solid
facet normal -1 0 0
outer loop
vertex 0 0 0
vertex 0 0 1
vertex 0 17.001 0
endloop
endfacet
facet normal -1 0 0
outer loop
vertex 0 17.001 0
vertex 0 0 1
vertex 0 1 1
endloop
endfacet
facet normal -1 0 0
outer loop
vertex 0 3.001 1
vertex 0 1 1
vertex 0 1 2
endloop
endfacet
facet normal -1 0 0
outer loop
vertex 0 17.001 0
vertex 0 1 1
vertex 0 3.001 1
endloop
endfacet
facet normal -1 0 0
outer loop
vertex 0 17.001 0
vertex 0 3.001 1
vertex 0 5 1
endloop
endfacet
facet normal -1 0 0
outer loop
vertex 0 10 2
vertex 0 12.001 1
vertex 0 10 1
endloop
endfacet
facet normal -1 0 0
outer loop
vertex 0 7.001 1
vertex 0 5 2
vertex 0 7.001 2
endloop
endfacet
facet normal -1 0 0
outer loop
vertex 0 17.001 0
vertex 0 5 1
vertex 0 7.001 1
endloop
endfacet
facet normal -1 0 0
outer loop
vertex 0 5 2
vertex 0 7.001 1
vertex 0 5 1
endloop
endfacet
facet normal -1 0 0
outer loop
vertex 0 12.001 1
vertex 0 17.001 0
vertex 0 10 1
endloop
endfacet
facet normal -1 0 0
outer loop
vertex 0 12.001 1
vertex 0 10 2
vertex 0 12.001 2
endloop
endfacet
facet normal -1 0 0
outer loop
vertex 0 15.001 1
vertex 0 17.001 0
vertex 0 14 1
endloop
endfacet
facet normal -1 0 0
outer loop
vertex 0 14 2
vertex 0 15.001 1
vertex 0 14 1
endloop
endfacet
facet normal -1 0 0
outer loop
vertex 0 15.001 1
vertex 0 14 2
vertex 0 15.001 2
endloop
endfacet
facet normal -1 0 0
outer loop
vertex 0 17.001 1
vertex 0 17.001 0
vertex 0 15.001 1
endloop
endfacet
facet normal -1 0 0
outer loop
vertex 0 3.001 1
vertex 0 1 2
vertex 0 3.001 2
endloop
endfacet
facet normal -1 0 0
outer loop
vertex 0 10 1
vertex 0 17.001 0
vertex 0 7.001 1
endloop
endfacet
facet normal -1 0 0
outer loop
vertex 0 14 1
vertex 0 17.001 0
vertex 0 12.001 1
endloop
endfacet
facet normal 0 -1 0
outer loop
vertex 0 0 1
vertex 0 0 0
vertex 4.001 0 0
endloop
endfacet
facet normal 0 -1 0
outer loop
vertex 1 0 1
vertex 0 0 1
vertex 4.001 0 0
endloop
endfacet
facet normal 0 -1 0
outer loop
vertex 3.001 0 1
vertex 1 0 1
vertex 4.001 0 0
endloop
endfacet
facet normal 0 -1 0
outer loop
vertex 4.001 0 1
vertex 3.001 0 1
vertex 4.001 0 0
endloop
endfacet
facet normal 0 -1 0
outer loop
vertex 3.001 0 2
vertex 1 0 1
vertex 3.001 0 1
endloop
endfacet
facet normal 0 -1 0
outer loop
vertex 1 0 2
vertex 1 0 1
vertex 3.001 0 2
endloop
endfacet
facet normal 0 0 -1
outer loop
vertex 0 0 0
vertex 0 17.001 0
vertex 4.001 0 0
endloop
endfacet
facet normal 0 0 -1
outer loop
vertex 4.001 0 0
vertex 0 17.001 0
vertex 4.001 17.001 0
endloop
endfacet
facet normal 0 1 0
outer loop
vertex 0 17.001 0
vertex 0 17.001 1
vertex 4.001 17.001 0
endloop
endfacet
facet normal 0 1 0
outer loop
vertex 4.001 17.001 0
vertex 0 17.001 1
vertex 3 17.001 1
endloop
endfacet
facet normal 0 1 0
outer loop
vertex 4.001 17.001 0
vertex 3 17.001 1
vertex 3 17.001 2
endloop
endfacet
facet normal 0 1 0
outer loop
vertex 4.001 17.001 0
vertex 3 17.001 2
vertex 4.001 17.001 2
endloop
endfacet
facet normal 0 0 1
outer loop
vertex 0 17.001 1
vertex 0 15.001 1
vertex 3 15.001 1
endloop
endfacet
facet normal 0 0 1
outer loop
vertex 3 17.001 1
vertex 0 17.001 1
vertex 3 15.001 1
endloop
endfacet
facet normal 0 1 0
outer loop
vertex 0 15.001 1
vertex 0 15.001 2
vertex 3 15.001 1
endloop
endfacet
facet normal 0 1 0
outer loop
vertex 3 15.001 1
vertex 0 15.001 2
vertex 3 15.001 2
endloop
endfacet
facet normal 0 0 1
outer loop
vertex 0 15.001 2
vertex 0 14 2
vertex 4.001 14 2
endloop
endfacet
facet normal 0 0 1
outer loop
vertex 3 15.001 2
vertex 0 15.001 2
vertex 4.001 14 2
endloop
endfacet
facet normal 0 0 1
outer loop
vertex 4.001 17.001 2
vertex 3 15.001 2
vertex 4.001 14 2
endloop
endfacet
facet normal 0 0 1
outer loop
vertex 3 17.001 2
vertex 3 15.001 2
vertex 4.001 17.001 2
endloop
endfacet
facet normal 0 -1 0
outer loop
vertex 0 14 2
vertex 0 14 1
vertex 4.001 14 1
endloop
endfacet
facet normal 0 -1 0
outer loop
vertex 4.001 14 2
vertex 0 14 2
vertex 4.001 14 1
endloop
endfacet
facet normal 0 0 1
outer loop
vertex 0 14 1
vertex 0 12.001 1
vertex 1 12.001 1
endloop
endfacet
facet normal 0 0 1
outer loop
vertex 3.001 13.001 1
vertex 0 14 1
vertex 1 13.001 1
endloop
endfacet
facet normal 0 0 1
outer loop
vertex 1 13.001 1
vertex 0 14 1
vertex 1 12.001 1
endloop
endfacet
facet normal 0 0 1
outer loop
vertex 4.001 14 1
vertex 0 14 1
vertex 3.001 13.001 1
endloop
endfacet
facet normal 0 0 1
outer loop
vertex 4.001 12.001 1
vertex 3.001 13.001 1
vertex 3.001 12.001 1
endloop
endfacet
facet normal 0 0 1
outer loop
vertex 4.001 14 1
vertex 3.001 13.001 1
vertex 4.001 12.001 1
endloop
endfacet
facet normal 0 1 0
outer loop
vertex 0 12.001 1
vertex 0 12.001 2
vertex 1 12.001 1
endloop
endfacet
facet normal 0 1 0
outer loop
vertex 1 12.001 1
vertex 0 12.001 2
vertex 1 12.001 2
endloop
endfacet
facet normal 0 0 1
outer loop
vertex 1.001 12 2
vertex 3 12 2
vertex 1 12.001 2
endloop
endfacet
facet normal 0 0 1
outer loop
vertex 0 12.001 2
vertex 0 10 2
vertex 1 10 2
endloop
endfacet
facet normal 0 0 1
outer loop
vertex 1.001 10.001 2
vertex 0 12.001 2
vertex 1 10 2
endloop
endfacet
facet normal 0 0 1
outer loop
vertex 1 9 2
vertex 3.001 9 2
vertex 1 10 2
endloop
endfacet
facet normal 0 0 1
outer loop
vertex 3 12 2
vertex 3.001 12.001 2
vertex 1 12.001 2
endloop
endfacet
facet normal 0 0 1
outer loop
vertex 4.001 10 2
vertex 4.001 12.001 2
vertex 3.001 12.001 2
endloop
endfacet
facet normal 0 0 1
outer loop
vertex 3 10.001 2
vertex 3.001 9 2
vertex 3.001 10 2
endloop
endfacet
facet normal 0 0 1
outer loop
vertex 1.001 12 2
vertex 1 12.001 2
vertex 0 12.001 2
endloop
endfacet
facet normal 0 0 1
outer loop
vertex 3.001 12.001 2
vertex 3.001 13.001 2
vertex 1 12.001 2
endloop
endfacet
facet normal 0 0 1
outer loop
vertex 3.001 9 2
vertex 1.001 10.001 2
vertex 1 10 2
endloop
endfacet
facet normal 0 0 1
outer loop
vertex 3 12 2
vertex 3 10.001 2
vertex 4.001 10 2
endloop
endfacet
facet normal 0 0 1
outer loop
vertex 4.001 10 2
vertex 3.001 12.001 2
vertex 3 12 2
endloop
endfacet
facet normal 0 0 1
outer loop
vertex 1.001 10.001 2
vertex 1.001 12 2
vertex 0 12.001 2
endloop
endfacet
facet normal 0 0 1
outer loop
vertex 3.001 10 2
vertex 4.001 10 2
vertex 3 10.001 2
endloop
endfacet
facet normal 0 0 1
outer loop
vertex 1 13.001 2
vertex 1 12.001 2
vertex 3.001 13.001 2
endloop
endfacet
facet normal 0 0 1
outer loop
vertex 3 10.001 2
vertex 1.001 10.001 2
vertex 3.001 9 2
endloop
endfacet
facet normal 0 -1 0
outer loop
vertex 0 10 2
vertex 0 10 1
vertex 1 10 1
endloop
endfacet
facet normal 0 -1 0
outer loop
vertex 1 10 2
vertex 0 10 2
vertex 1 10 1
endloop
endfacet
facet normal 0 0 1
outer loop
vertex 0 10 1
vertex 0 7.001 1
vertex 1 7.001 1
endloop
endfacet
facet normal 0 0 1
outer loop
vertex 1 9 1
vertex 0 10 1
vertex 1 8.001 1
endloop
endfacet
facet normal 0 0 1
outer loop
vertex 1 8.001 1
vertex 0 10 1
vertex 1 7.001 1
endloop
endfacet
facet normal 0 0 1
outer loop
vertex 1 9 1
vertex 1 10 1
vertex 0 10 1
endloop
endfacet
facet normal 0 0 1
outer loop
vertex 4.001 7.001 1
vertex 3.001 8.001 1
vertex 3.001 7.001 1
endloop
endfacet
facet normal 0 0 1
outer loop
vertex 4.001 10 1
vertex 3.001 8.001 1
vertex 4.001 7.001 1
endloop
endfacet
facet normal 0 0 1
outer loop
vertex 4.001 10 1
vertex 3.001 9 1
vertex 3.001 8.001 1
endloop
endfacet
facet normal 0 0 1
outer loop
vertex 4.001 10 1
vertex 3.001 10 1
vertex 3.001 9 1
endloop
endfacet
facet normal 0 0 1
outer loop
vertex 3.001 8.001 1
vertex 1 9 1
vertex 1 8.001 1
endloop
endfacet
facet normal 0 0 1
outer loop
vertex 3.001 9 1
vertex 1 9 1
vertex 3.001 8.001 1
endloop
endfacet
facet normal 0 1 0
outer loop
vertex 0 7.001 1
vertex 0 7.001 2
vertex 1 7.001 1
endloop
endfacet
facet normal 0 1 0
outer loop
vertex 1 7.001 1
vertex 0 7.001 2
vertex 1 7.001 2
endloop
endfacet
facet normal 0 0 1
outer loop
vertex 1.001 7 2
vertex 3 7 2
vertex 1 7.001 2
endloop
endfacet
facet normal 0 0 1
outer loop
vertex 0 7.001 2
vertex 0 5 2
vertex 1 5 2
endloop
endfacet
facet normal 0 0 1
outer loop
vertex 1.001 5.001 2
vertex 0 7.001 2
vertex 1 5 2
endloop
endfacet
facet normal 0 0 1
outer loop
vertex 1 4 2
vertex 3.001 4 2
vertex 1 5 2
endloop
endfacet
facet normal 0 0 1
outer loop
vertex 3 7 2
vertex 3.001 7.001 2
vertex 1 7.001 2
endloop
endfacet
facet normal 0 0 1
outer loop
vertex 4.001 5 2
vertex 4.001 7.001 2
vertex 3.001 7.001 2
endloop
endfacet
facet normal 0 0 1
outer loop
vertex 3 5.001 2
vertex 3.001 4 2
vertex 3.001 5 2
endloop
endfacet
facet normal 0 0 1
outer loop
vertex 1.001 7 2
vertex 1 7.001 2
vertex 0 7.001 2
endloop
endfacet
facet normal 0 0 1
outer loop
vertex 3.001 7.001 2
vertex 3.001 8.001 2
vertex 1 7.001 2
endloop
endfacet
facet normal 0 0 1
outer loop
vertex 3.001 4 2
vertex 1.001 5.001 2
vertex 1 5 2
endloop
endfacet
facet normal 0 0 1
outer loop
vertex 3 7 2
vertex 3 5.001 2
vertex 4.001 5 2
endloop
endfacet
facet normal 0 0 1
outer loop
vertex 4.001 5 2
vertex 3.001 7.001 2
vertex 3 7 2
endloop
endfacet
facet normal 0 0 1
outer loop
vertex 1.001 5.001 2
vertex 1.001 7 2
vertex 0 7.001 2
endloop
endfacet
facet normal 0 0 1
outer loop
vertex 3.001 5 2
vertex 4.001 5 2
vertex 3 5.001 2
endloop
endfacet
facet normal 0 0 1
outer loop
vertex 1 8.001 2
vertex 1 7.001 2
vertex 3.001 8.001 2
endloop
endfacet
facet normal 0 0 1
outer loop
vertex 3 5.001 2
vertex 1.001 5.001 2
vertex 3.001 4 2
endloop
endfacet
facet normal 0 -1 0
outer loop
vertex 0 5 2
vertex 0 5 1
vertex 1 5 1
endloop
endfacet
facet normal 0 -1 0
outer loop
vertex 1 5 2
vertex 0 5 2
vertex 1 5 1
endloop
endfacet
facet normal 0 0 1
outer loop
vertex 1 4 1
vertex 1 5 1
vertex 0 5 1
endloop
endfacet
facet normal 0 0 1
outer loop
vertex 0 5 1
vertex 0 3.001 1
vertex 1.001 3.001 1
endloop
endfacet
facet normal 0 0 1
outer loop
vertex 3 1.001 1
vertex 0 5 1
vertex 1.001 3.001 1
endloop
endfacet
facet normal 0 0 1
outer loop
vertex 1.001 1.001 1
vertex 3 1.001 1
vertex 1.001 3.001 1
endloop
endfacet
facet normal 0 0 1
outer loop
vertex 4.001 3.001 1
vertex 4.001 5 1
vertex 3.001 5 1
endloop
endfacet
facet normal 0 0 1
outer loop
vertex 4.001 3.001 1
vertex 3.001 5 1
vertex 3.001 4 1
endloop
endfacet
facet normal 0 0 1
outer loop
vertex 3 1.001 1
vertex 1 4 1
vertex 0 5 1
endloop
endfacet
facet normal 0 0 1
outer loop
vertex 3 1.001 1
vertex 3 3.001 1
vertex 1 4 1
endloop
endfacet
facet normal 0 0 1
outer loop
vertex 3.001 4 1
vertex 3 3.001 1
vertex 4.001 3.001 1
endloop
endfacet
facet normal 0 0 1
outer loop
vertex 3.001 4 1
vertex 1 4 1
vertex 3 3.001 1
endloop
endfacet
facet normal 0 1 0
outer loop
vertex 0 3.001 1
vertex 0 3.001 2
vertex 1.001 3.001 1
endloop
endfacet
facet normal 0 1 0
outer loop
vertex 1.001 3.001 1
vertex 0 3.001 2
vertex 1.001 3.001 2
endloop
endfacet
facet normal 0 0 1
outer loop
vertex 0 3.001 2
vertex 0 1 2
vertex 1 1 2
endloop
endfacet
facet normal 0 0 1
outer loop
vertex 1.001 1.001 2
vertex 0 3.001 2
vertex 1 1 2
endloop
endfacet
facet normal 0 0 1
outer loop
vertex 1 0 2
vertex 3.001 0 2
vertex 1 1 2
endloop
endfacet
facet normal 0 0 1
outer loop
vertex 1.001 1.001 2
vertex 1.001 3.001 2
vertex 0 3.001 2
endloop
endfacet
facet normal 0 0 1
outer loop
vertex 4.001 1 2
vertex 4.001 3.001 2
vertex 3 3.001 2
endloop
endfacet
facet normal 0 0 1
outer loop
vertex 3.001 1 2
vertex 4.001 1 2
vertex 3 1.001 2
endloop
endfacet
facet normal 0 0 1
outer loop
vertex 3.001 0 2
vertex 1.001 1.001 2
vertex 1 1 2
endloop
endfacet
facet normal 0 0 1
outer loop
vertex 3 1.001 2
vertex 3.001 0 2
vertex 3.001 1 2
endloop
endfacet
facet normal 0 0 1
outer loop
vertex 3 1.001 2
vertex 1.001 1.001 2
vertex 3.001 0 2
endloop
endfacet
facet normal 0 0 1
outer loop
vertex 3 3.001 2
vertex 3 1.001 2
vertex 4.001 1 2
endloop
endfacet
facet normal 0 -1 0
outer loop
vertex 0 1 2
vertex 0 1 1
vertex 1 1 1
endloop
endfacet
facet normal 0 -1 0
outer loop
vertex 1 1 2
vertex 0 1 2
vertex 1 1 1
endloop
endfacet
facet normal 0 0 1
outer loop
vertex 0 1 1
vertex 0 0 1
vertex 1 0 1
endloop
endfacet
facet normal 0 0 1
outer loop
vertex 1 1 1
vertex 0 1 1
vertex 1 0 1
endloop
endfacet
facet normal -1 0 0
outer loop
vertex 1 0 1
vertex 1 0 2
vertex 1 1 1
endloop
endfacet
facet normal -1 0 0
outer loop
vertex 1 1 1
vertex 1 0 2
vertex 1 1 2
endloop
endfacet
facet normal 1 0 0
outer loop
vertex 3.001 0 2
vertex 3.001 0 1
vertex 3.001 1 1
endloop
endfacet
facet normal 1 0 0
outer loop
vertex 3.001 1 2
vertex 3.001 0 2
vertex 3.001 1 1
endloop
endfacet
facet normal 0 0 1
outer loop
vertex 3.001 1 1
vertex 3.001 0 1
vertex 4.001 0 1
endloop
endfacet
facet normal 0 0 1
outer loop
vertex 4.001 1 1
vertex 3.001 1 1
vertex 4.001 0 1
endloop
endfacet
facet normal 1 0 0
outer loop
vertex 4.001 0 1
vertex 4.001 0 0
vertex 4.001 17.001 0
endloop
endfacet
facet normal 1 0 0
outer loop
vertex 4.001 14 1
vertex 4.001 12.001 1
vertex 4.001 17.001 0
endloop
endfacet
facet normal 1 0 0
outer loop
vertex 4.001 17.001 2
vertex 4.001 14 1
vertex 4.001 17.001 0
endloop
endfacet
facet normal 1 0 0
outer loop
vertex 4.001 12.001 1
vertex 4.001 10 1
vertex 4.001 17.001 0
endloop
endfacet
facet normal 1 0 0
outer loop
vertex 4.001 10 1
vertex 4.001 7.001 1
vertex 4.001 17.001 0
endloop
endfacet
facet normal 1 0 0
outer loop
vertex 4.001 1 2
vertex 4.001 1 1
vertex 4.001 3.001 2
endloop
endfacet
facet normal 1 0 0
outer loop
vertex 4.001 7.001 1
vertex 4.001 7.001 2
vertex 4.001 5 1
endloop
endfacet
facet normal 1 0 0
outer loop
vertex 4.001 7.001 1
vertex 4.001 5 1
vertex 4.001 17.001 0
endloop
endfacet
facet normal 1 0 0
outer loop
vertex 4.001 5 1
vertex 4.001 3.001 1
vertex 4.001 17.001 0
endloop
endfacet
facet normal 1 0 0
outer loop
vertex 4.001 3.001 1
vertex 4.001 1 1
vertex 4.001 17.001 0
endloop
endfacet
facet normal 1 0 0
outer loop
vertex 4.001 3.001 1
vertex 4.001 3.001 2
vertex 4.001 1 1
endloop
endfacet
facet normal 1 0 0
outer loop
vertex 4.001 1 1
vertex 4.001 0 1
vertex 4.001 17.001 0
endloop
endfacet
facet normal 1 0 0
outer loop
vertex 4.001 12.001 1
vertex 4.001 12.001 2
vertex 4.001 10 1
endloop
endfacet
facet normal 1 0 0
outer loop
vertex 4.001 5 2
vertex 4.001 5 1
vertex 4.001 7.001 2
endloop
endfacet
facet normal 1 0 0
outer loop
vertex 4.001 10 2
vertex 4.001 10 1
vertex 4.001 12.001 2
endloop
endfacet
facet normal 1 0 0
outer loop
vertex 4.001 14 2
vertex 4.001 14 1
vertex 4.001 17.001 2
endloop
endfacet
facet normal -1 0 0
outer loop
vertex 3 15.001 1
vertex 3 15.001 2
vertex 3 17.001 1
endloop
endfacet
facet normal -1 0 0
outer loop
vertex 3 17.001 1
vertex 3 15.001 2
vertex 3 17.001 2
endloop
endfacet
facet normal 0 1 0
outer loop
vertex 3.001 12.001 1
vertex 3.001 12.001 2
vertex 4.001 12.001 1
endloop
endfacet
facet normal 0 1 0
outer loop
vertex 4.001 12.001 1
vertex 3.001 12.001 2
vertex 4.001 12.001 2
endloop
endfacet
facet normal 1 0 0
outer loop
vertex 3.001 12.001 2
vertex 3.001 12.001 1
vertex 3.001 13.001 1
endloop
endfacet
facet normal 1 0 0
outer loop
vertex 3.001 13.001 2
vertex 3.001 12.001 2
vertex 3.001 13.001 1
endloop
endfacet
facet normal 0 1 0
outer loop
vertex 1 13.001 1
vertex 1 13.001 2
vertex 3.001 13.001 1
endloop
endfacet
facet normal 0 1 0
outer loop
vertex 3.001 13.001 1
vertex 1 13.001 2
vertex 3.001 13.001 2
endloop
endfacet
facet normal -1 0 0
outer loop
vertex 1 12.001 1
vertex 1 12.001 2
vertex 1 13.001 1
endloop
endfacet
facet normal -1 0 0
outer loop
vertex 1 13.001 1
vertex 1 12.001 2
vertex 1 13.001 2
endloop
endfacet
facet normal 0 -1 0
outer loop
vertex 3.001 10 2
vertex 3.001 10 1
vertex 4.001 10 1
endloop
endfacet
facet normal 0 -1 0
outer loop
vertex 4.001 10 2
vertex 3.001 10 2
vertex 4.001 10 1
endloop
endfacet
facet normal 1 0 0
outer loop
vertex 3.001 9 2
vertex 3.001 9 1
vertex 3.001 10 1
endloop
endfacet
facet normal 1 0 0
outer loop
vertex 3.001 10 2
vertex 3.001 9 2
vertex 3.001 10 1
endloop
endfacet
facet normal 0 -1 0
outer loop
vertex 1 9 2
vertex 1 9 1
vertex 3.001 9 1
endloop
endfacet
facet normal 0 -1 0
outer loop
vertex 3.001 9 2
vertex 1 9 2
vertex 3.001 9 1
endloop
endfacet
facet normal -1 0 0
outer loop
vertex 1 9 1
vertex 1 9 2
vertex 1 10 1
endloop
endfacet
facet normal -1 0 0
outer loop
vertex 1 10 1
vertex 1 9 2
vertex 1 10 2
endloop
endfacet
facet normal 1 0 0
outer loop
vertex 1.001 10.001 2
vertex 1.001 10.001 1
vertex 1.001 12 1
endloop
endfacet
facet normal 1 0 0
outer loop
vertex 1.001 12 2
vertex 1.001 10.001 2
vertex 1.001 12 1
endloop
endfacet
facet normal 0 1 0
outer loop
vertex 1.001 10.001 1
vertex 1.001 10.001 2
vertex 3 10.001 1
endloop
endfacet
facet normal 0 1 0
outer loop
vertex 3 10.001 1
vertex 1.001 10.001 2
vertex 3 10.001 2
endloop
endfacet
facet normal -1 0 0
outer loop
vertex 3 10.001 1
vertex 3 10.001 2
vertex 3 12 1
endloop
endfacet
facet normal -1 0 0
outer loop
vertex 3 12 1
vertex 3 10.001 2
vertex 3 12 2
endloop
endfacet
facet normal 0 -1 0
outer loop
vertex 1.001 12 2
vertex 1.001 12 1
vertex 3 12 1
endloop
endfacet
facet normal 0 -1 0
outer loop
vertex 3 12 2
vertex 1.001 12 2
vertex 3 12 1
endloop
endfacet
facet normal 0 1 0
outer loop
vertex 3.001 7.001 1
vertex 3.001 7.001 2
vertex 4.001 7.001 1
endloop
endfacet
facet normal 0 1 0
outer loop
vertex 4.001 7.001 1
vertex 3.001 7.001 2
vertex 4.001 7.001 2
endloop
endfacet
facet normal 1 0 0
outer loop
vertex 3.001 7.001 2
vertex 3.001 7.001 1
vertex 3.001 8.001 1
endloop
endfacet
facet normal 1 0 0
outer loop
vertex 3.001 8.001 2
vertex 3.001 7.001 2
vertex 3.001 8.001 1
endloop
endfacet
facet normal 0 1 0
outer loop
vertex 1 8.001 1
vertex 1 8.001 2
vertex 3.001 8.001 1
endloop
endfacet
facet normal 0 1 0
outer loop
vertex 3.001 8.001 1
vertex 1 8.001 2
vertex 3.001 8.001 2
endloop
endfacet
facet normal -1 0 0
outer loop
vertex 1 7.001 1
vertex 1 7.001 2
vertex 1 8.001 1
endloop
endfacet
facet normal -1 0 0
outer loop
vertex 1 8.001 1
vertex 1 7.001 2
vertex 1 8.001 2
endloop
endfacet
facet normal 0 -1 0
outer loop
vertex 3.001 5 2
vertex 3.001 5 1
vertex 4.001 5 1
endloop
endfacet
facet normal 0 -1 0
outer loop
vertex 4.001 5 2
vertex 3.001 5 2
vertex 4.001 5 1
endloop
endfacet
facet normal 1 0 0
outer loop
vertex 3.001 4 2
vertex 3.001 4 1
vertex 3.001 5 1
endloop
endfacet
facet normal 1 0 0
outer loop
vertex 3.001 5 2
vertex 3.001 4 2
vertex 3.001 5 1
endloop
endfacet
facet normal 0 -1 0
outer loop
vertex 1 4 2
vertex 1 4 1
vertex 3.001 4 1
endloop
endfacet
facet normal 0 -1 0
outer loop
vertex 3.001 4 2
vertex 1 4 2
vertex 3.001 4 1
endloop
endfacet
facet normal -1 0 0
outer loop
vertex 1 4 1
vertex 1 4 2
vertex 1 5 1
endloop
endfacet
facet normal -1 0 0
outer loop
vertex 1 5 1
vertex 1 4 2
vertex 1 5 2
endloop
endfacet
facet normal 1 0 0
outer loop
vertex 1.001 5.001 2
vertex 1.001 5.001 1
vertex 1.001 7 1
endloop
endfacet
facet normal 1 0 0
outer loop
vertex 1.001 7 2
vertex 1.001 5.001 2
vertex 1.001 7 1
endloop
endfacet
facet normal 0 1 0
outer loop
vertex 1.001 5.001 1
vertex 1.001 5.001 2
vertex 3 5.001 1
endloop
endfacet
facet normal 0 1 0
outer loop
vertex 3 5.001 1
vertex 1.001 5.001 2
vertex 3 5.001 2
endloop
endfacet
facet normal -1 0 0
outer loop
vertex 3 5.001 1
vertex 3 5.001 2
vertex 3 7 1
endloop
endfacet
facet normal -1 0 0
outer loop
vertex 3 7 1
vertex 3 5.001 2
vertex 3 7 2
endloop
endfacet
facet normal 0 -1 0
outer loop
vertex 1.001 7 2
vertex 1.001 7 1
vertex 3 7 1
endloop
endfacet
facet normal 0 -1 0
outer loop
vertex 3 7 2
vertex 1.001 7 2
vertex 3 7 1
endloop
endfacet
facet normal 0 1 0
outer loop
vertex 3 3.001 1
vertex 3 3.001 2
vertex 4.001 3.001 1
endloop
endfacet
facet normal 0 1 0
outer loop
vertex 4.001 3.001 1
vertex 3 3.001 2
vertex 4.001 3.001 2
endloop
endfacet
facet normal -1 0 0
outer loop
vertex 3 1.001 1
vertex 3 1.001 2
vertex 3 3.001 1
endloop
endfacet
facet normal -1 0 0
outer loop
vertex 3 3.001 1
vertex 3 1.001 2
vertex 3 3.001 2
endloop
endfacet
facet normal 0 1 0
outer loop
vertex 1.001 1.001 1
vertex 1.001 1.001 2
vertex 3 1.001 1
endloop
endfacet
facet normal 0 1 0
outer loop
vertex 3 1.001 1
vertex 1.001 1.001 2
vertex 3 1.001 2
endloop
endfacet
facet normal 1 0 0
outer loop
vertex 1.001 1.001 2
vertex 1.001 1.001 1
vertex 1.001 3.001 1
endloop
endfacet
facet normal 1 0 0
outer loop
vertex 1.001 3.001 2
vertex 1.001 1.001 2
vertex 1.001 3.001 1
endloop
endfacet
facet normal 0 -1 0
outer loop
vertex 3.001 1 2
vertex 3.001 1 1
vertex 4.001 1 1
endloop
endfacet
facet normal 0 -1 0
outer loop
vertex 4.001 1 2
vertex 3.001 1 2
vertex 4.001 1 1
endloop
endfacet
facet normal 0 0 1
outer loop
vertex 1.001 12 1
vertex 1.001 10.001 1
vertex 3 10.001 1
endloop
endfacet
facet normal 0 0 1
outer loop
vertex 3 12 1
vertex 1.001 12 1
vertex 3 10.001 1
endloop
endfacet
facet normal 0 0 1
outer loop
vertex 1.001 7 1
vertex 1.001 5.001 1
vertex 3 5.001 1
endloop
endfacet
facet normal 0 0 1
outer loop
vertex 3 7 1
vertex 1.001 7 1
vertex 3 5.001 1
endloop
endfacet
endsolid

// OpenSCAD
union () { 
translate([0,0,0]) cube([1.001,1.001,1]);
translate([0,1,0]) cube([1.001,1.001,2]);
translate([0,2,0]) cube([1.001,1.001,2]);
translate([0,3,0]) cube([1.001,1.001,1]);
translate([0,4,0]) cube([1.001,1.001,1]);
translate([0,5,0]) cube([1.001,1.001,2]);
translate([0,6,0]) cube([1.001,1.001,2]);
translate([0,7,0]) cube([1.001,1.001,1]);
translate([0,8,0]) cube([1.001,1.001,1]);
translate([0,9,0]) cube([1.001,1.001,1]);
translate([0,10,0]) cube([1.001,1.001,2]);
translate([0,11,0]) cube([1.001,1.001,2]);
translate([0,12,0]) cube([1.001,1.001,1]);
translate([0,13,0]) cube([1.001,1.001,1]);
translate([0,14,0]) cube([1.001,1.001,2]);
translate([0,15,0]) cube([1.001,1.001,1]);
translate([0,16,0]) cube([1.001,1.001,1]);
translate([1,0,0]) cube([1.001,1.001,2]);
translate([1,1,0]) cube([1.001,1.001,1]);
translate([1,2,0]) cube([1.001,1.001,1]);
translate([1,3,0]) cube([1.001,1.001,1]);
translate([1,4,0]) cube([1.001,1.001,2]);
translate([1,5,0]) cube([1.001,1.001,1]);
translate([1,6,0]) cube([1.001,1.001,1]);
translate([1,7,0]) cube([1.001,1.001,2]);
translate([1,8,0]) cube([1.001,1.001,1]);
translate([1,9,0]) cube([1.001,1.001,2]);
translate([1,10,0]) cube([1.001,1.001,1]);
translate([1,11,0]) cube([1.001,1.001,1]);
translate([1,12,0]) cube([1.001,1.001,2]);
translate([1,13,0]) cube([1.001,1.001,1]);
translate([1,14,0]) cube([1.001,1.001,2]);
translate([1,15,0]) cube([1.001,1.001,1]);
translate([1,16,0]) cube([1.001,1.001,1]);
translate([2,0,0]) cube([1.001,1.001,2]);
translate([2,1,0]) cube([1.001,1.001,1]);
translate([2,2,0]) cube([1.001,1.001,1]);
translate([2,3,0]) cube([1.001,1.001,1]);
translate([2,4,0]) cube([1.001,1.001,2]);
translate([2,5,0]) cube([1.001,1.001,1]);
translate([2,6,0]) cube([1.001,1.001,1]);
translate([2,7,0]) cube([1.001,1.001,2]);
translate([2,8,0]) cube([1.001,1.001,1]);
translate([2,9,0]) cube([1.001,1.001,2]);
translate([2,10,0]) cube([1.001,1.001,1]);
translate([2,11,0]) cube([1.001,1.001,1]);
translate([2,12,0]) cube([1.001,1.001,2]);
translate([2,13,0]) cube([1.001,1.001,1]);
translate([2,14,0]) cube([1.001,1.001,2]);
translate([2,15,0]) cube([1.001,1.001,1]);
translate([2,16,0]) cube([1.001,1.001,1]);
translate([3,0,0]) cube([1.001,1.001,1]);
translate([3,1,0]) cube([1.001,1.001,2]);
translate([3,2,0]) cube([1.001,1.001,2]);
translate([3,3,0]) cube([1.001,1.001,1]);
translate([3,4,0]) cube([1.001,1.001,1]);
translate([3,5,0]) cube([1.001,1.001,2]);
translate([3,6,0]) cube([1.001,1.001,2]);
translate([3,7,0]) cube([1.001,1.001,1]);
translate([3,8,0]) cube([1.001,1.001,1]);
translate([3,9,0]) cube([1.001,1.001,1]);
translate([3,10,0]) cube([1.001,1.001,2]);
translate([3,11,0]) cube([1.001,1.001,2]);
translate([3,12,0]) cube([1.001,1.001,1]);
translate([3,13,0]) cube([1.001,1.001,1]);
translate([3,14,0]) cube([1.001,1.001,2]);
translate([3,15,0]) cube([1.001,1.001,2]);
translate([3,16,0]) cube([1.001,1.001,2]);
}
